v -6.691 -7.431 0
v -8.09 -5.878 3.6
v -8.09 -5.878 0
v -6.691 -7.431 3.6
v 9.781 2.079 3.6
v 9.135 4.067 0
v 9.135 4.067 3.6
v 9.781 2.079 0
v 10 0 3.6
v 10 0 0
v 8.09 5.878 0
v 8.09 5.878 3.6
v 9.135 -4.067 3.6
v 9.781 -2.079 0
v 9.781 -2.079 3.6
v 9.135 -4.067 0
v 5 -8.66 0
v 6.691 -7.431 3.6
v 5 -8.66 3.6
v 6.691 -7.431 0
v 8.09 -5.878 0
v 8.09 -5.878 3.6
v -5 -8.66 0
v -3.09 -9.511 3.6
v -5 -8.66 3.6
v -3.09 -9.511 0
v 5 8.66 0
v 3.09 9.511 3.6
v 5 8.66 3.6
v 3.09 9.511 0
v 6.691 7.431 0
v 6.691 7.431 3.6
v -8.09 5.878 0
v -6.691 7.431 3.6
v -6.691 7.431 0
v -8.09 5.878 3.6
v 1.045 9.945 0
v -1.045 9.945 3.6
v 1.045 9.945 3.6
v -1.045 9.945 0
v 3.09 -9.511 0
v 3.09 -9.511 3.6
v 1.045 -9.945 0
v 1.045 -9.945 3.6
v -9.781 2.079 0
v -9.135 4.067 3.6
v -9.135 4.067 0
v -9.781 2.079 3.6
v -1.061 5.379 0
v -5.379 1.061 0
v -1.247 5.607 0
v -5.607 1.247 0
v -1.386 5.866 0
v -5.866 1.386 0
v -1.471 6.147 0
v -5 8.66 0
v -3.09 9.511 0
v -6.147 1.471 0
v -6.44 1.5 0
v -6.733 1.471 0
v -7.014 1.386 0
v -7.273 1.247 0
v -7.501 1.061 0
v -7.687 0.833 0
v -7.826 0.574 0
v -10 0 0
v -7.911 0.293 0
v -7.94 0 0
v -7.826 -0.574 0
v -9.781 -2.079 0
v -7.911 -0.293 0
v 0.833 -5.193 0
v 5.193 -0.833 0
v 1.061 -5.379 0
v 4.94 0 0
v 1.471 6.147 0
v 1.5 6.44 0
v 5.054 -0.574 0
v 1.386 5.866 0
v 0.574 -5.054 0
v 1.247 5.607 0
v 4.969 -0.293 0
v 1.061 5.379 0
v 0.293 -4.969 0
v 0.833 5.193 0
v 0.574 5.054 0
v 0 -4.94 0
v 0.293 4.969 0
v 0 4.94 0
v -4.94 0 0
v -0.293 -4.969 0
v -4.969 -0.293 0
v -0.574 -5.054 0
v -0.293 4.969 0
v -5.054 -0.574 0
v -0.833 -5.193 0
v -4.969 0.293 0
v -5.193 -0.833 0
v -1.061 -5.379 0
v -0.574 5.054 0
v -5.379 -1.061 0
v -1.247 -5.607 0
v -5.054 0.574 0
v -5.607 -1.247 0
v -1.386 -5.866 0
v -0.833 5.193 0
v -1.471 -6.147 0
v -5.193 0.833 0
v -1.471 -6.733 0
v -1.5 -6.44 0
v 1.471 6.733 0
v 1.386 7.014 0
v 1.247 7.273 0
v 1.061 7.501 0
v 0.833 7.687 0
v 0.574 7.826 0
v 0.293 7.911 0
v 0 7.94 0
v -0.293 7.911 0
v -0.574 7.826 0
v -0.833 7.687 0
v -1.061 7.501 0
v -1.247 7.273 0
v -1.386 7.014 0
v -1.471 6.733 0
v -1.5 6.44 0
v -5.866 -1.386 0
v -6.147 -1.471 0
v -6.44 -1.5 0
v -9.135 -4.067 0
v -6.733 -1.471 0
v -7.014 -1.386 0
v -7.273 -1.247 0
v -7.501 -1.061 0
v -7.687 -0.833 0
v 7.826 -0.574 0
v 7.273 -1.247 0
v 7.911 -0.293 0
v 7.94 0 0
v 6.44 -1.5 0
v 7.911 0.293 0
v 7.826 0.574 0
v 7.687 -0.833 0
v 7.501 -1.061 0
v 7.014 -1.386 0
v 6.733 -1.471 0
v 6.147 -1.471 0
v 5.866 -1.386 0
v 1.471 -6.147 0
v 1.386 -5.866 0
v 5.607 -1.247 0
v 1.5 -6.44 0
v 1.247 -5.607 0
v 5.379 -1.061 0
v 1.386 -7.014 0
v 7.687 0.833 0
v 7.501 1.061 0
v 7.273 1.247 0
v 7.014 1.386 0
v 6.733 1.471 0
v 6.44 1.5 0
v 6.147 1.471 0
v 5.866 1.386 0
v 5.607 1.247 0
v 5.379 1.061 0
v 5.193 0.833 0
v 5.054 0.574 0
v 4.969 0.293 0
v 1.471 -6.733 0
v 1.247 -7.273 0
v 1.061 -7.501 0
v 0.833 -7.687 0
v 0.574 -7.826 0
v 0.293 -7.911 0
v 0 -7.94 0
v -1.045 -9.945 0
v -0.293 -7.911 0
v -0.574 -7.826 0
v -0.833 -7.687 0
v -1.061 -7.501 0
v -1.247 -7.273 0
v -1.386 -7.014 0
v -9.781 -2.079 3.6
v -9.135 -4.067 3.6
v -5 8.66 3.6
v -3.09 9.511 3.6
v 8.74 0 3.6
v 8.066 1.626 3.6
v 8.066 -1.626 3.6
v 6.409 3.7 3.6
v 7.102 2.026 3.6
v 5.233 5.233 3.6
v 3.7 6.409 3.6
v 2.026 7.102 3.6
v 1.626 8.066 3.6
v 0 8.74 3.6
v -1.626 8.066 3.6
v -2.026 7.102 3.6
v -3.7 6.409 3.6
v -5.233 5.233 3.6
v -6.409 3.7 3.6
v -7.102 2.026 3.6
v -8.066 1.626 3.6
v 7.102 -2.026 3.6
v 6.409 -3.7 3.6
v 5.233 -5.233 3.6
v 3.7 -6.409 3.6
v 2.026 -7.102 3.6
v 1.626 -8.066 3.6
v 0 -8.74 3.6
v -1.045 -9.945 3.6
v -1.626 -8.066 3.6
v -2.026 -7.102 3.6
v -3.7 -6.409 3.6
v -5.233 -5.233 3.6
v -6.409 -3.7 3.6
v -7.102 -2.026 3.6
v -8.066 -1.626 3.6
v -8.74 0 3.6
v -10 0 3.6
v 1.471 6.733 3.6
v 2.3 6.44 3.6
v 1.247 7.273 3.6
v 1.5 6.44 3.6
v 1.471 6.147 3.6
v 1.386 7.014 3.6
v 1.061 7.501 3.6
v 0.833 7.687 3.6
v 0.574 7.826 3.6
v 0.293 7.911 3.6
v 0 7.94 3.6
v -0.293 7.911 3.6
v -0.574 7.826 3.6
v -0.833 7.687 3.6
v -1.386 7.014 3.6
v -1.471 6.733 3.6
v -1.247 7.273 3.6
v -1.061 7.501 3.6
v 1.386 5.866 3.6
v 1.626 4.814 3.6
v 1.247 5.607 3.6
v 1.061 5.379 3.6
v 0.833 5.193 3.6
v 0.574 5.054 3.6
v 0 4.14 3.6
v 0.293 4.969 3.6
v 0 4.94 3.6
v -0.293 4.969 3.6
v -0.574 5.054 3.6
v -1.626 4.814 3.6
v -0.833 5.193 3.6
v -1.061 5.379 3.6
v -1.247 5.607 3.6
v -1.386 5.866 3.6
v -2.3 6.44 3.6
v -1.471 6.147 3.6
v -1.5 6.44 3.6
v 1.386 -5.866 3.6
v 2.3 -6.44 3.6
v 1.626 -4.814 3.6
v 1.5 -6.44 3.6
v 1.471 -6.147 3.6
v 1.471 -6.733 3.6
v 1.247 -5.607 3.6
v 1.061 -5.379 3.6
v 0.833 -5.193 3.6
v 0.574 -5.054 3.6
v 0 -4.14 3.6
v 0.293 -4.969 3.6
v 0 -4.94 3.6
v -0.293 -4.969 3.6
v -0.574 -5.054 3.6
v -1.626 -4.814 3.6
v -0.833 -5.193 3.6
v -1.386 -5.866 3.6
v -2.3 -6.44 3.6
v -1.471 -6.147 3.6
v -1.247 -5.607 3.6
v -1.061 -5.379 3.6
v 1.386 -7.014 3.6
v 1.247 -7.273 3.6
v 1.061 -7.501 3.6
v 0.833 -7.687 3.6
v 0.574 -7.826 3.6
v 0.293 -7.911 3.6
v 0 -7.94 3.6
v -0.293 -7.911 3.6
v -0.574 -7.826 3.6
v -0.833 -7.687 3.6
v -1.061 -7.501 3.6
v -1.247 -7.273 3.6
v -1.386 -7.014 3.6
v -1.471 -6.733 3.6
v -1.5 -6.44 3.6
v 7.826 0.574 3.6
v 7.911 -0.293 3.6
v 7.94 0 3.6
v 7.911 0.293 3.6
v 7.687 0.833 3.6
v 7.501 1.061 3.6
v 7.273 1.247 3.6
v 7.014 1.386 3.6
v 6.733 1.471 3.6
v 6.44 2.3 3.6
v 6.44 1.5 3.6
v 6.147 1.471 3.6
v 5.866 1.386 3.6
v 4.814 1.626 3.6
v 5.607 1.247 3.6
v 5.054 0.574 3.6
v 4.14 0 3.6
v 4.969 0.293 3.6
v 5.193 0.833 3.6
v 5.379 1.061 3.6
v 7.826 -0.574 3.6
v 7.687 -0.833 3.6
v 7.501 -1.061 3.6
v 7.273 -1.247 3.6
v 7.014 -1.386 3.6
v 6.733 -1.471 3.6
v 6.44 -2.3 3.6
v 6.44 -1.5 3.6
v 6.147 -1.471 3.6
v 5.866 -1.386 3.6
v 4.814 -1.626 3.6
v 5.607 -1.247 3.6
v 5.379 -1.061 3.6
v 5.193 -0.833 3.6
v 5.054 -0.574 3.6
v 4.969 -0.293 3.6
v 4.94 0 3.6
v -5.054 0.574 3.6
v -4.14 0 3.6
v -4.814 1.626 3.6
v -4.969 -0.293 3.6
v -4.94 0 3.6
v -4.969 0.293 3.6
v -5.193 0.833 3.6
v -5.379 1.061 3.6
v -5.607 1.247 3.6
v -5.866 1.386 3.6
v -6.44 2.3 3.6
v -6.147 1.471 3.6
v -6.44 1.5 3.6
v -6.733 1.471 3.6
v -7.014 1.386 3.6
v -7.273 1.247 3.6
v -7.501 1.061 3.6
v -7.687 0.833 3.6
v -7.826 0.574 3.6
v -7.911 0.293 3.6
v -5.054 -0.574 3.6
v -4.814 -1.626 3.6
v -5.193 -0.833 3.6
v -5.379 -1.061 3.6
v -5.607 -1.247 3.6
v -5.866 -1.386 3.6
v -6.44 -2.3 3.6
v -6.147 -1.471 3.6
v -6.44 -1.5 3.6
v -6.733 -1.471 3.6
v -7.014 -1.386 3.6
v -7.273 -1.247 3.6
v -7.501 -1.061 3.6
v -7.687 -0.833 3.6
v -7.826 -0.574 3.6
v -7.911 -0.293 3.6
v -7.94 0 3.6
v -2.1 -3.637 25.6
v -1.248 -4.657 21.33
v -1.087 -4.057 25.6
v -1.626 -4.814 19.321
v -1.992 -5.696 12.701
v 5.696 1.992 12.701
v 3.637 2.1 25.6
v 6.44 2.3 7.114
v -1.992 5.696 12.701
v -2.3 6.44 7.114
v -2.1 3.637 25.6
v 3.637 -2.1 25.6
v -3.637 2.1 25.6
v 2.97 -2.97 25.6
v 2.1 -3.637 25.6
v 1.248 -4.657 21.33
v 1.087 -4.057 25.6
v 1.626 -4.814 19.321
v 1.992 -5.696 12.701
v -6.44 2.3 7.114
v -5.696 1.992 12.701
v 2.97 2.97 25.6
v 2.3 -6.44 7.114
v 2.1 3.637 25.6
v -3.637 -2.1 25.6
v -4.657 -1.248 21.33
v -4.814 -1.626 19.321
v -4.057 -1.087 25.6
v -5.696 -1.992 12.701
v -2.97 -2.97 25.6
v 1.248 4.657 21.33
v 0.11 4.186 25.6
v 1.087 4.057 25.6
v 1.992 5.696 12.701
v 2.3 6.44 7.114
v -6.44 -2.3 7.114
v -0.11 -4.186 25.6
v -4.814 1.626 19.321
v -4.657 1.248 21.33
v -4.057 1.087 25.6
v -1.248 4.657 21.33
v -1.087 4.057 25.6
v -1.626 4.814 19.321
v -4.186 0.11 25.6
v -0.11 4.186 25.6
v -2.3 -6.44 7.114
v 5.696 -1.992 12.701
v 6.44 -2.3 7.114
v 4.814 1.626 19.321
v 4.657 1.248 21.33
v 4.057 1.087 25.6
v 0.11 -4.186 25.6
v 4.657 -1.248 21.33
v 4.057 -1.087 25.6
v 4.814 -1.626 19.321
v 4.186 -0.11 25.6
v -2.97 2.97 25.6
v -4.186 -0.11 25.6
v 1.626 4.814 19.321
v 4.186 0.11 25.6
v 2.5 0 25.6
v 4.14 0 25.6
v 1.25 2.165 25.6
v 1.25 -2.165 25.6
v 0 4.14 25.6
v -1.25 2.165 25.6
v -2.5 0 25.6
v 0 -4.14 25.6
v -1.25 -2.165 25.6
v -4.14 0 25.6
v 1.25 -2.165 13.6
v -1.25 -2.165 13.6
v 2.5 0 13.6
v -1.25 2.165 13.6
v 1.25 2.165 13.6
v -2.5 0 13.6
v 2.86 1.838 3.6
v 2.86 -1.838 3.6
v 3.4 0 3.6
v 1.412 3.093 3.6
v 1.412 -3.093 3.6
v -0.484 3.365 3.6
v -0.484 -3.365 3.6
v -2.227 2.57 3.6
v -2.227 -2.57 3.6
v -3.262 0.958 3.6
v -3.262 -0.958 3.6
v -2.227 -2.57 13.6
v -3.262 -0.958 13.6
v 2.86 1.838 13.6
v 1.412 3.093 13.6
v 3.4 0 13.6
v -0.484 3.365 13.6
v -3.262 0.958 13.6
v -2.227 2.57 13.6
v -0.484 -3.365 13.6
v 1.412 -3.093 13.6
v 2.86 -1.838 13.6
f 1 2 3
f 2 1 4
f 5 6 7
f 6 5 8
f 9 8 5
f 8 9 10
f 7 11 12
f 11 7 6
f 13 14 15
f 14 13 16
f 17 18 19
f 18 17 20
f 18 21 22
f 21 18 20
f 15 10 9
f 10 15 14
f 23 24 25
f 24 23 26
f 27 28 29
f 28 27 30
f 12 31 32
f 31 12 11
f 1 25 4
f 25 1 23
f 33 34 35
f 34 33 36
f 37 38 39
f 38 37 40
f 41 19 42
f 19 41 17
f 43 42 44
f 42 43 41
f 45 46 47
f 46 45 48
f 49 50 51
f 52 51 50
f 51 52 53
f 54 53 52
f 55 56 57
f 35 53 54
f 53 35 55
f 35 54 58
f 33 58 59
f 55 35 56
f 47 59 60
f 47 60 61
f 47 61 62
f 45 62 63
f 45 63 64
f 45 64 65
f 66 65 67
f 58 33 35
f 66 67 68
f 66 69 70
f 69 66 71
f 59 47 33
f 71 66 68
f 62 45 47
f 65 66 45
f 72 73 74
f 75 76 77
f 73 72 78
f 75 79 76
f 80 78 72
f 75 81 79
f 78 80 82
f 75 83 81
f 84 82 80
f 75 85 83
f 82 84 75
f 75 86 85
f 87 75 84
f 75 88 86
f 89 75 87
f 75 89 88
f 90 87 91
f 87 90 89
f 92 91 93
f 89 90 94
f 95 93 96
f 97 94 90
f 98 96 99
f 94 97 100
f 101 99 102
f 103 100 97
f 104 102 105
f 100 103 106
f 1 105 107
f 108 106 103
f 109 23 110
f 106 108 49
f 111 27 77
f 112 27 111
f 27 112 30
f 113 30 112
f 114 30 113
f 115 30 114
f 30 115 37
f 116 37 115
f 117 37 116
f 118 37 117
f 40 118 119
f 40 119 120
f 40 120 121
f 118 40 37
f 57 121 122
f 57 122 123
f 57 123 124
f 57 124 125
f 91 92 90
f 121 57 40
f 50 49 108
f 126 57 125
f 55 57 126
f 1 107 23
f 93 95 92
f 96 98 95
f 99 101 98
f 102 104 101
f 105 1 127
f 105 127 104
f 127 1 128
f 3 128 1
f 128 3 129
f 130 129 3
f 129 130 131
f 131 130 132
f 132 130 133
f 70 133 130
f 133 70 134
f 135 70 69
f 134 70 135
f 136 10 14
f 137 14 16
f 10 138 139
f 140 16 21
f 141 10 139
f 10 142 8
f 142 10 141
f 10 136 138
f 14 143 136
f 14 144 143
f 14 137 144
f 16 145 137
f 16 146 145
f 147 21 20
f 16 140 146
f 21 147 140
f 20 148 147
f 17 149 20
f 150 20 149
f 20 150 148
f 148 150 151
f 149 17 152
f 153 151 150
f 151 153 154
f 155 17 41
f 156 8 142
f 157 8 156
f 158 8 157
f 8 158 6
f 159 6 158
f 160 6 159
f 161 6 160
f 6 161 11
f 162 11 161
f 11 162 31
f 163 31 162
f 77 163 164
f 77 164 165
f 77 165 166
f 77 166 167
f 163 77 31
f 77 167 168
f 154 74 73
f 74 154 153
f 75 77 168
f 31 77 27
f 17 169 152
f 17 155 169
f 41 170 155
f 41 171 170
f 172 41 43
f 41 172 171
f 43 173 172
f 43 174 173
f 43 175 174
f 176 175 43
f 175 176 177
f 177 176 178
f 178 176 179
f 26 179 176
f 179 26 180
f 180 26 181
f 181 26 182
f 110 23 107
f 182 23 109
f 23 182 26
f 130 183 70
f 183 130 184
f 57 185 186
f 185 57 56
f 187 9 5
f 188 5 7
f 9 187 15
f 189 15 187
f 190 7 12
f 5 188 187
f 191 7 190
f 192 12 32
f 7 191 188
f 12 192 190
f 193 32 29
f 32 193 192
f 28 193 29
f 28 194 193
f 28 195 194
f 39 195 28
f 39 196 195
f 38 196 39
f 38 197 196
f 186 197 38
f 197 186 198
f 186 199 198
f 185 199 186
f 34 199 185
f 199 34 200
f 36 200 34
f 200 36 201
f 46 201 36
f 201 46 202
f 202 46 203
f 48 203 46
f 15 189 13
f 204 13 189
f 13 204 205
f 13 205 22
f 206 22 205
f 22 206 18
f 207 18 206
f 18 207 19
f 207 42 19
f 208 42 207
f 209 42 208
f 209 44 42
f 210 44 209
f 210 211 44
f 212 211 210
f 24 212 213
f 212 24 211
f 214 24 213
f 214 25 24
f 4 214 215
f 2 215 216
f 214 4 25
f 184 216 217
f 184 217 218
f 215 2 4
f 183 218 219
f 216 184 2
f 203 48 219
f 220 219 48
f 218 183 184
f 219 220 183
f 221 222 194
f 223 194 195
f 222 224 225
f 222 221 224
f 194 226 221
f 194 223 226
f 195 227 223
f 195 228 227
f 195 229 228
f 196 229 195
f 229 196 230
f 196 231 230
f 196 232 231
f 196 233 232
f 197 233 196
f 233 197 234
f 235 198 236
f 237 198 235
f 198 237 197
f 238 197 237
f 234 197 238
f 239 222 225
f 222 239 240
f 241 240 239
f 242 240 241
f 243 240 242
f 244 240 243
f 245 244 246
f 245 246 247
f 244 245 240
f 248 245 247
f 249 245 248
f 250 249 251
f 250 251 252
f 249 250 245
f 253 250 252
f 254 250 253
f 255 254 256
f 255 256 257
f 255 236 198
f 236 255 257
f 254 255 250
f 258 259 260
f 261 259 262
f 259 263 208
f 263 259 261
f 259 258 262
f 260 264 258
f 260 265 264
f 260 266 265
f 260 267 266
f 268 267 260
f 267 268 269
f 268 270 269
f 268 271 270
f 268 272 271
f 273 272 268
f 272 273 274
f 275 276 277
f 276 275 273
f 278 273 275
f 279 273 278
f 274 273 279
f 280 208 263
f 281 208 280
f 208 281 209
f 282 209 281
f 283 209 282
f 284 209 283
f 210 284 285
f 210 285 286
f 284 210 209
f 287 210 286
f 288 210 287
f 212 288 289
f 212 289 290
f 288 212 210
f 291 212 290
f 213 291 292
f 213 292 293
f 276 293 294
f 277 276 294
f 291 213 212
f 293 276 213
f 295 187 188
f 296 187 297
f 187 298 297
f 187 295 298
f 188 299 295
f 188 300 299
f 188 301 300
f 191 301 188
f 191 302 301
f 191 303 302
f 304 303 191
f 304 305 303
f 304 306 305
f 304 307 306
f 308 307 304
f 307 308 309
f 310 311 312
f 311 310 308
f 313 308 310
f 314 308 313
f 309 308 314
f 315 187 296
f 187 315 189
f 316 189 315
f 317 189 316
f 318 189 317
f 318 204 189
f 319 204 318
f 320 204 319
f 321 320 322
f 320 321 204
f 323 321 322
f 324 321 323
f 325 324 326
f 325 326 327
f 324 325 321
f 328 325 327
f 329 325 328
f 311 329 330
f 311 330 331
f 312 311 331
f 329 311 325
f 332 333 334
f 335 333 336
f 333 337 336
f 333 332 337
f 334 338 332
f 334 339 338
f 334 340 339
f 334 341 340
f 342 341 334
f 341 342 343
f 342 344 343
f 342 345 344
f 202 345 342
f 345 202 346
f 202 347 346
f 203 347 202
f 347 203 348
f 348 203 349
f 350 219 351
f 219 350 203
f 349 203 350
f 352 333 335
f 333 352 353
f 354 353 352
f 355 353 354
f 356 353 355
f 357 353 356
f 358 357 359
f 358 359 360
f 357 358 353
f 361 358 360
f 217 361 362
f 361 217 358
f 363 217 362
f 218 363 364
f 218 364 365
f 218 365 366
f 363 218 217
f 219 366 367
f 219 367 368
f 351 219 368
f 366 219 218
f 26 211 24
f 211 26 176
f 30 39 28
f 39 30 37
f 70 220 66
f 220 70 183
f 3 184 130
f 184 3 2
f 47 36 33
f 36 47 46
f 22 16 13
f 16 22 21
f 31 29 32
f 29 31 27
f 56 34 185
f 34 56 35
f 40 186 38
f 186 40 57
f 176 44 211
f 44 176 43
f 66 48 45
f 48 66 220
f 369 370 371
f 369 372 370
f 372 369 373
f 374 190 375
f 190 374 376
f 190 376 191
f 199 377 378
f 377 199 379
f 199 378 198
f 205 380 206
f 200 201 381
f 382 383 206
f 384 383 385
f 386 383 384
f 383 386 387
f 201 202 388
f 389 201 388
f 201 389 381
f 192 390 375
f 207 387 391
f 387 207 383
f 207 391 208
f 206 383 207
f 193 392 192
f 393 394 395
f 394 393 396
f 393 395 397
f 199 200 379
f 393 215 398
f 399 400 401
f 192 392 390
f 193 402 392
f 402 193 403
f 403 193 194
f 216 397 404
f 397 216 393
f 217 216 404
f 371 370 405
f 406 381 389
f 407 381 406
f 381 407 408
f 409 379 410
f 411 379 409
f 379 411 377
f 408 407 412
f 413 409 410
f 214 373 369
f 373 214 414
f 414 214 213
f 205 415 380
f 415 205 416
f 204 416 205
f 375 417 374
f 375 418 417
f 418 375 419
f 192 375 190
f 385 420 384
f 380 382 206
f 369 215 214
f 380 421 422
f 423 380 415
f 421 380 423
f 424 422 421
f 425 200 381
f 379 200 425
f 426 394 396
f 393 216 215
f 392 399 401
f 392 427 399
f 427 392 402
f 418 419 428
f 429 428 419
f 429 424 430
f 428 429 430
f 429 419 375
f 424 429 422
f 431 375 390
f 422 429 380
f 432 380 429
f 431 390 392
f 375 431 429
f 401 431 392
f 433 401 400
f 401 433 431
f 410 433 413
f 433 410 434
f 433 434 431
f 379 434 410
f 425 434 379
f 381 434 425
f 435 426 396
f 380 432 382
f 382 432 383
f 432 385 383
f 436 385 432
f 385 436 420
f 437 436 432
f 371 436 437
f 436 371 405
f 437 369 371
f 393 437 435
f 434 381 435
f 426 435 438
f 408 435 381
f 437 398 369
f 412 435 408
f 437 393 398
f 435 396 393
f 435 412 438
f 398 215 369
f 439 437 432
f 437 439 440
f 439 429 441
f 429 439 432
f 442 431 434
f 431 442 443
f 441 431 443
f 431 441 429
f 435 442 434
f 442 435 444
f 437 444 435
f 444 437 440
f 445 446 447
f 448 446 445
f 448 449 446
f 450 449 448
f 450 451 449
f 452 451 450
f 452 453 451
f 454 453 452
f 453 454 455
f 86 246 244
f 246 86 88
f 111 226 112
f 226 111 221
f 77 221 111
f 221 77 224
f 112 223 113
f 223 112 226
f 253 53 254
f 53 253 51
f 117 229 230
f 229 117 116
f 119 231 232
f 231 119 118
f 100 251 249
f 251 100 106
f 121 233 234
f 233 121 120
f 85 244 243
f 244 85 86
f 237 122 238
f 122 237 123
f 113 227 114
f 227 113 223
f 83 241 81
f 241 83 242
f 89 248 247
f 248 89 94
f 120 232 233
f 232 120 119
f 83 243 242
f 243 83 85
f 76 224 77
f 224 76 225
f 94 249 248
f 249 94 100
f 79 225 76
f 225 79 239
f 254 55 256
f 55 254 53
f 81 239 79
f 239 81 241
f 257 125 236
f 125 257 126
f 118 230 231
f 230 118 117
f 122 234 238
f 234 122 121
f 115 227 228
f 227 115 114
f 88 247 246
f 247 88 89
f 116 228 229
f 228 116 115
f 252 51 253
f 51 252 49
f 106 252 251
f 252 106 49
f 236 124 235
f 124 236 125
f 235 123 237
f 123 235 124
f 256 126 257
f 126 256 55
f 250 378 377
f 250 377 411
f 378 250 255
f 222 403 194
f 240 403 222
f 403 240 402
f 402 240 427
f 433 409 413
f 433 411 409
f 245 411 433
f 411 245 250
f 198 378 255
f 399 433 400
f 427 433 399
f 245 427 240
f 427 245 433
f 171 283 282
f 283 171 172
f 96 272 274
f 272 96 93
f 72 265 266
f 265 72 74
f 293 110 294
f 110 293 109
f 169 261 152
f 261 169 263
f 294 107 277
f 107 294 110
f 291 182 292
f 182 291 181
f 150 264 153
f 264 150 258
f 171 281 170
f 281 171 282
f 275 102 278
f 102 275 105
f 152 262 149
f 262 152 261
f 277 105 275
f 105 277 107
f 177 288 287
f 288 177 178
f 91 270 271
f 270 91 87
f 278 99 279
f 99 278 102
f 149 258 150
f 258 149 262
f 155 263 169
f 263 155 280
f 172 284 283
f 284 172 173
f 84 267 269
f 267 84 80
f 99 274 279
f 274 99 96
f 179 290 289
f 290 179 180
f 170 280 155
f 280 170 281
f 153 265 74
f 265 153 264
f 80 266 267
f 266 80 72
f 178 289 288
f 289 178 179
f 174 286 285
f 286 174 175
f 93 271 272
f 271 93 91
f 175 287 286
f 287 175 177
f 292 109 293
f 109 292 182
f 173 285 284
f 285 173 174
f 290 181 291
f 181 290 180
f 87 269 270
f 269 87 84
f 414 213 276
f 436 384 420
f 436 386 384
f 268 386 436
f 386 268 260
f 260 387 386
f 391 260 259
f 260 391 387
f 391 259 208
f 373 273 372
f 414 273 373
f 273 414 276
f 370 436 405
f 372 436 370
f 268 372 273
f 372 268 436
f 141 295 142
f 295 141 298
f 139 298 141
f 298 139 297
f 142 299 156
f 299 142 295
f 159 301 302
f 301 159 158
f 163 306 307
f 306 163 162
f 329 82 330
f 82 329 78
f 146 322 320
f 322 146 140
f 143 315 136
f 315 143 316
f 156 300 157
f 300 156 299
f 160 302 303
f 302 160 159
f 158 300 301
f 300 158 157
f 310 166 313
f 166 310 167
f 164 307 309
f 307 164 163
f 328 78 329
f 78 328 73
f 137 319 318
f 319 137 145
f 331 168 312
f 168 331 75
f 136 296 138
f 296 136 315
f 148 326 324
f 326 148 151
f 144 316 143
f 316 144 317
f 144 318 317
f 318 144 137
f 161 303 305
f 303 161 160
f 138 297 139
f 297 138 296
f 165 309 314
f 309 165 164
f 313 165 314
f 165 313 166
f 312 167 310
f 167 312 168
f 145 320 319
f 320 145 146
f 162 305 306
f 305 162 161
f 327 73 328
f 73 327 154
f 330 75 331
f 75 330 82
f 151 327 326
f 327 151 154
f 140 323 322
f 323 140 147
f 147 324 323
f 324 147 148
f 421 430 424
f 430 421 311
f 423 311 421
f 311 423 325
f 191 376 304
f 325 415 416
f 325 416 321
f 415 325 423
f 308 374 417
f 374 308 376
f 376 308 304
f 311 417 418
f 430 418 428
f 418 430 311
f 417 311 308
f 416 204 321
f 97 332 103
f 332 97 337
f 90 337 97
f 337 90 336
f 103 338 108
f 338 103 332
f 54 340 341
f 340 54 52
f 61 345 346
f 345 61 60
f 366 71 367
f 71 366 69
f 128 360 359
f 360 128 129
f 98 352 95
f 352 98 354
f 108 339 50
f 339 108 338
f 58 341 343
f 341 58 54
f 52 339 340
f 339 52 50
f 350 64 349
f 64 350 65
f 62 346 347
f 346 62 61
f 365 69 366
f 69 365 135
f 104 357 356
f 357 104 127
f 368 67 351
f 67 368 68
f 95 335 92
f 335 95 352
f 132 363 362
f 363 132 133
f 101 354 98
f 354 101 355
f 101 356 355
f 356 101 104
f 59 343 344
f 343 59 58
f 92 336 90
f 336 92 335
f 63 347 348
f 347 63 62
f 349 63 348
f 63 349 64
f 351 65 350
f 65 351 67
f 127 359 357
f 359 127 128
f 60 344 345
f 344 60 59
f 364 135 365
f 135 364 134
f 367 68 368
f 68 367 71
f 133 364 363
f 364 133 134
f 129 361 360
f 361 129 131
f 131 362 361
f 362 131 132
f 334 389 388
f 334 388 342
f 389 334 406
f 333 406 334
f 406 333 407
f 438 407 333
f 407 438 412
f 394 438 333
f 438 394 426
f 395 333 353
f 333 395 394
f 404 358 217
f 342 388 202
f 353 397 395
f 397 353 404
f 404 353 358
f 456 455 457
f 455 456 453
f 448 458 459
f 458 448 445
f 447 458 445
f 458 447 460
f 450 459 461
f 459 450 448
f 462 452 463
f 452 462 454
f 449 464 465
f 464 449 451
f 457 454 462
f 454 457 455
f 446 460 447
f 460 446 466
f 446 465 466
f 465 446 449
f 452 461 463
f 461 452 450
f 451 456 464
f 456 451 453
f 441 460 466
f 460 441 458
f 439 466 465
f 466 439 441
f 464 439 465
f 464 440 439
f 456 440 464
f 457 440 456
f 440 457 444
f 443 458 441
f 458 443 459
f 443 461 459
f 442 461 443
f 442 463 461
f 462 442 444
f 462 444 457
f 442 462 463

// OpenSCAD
plate_radius = 10;
plate_thickness = 3.6;
chuck_height = 22;
chuck_radius = 4.2;
chuck_base_radius = 7.4;  // Wider base for the cone
screw_hole_radius = 1.5;
screw_hole_offset = 6.44;
top_cylinder_height = chuck_height + 2;  // Height of cylinders above screw holes
top_cylinder_radius = 2.3;  // Radius of cylinders above screw holes

module solid_parts() {
    // Chuck plate
    cylinder(h=plate_thickness, r=plate_radius);
    
    // Chuck shaft
    translate([0, 0, plate_thickness]) {
        cylinder(h=chuck_height, r1=chuck_base_radius, r2=chuck_radius);
    }
}

module plat_screw_hole() {
    cylinder(h=plate_thickness + 2, r=screw_hole_radius, $fn=32);
}

module magnet_cavity() {
    cylinder(h=10, r=3.4);
}

difference() {
    solid_parts();
    
    translate([0, 0, plate_thickness]) {
        cylinder(h=chuck_height + 1, r=2.5, $fn=6);
    }
    
    // Screw holes with cylinders above them
    translate([0, screw_hole_offset, -1]) {
        plat_screw_hole();
    }
    translate([0, screw_hole_offset, plate_thickness]) {
        cylinder(h=top_cylinder_height, r=top_cylinder_radius);
    }
    
    translate([0, -screw_hole_offset, -1]) {
        plat_screw_hole();
    }
    translate([0, -screw_hole_offset, plate_thickness]) {
        cylinder(h=top_cylinder_height, r=top_cylinder_radius);
    }
    
    translate([screw_hole_offset, 0, -1]) {
        plat_screw_hole();
    }
    translate([screw_hole_offset, 0, plate_thickness]) {
        cylinder(h=top_cylinder_height, r=top_cylinder_radius);
    }
    
    translate([-screw_hole_offset, 0, -1]) {
        plat_screw_hole();
    }
    translate([-screw_hole_offset, 0, plate_thickness]) {
        cylinder(h=top_cylinder_height, r=top_cylinder_radius);
    }
    
    translate([0, 0, plate_thickness]) {
        magnet_cavity();
    } 
}
